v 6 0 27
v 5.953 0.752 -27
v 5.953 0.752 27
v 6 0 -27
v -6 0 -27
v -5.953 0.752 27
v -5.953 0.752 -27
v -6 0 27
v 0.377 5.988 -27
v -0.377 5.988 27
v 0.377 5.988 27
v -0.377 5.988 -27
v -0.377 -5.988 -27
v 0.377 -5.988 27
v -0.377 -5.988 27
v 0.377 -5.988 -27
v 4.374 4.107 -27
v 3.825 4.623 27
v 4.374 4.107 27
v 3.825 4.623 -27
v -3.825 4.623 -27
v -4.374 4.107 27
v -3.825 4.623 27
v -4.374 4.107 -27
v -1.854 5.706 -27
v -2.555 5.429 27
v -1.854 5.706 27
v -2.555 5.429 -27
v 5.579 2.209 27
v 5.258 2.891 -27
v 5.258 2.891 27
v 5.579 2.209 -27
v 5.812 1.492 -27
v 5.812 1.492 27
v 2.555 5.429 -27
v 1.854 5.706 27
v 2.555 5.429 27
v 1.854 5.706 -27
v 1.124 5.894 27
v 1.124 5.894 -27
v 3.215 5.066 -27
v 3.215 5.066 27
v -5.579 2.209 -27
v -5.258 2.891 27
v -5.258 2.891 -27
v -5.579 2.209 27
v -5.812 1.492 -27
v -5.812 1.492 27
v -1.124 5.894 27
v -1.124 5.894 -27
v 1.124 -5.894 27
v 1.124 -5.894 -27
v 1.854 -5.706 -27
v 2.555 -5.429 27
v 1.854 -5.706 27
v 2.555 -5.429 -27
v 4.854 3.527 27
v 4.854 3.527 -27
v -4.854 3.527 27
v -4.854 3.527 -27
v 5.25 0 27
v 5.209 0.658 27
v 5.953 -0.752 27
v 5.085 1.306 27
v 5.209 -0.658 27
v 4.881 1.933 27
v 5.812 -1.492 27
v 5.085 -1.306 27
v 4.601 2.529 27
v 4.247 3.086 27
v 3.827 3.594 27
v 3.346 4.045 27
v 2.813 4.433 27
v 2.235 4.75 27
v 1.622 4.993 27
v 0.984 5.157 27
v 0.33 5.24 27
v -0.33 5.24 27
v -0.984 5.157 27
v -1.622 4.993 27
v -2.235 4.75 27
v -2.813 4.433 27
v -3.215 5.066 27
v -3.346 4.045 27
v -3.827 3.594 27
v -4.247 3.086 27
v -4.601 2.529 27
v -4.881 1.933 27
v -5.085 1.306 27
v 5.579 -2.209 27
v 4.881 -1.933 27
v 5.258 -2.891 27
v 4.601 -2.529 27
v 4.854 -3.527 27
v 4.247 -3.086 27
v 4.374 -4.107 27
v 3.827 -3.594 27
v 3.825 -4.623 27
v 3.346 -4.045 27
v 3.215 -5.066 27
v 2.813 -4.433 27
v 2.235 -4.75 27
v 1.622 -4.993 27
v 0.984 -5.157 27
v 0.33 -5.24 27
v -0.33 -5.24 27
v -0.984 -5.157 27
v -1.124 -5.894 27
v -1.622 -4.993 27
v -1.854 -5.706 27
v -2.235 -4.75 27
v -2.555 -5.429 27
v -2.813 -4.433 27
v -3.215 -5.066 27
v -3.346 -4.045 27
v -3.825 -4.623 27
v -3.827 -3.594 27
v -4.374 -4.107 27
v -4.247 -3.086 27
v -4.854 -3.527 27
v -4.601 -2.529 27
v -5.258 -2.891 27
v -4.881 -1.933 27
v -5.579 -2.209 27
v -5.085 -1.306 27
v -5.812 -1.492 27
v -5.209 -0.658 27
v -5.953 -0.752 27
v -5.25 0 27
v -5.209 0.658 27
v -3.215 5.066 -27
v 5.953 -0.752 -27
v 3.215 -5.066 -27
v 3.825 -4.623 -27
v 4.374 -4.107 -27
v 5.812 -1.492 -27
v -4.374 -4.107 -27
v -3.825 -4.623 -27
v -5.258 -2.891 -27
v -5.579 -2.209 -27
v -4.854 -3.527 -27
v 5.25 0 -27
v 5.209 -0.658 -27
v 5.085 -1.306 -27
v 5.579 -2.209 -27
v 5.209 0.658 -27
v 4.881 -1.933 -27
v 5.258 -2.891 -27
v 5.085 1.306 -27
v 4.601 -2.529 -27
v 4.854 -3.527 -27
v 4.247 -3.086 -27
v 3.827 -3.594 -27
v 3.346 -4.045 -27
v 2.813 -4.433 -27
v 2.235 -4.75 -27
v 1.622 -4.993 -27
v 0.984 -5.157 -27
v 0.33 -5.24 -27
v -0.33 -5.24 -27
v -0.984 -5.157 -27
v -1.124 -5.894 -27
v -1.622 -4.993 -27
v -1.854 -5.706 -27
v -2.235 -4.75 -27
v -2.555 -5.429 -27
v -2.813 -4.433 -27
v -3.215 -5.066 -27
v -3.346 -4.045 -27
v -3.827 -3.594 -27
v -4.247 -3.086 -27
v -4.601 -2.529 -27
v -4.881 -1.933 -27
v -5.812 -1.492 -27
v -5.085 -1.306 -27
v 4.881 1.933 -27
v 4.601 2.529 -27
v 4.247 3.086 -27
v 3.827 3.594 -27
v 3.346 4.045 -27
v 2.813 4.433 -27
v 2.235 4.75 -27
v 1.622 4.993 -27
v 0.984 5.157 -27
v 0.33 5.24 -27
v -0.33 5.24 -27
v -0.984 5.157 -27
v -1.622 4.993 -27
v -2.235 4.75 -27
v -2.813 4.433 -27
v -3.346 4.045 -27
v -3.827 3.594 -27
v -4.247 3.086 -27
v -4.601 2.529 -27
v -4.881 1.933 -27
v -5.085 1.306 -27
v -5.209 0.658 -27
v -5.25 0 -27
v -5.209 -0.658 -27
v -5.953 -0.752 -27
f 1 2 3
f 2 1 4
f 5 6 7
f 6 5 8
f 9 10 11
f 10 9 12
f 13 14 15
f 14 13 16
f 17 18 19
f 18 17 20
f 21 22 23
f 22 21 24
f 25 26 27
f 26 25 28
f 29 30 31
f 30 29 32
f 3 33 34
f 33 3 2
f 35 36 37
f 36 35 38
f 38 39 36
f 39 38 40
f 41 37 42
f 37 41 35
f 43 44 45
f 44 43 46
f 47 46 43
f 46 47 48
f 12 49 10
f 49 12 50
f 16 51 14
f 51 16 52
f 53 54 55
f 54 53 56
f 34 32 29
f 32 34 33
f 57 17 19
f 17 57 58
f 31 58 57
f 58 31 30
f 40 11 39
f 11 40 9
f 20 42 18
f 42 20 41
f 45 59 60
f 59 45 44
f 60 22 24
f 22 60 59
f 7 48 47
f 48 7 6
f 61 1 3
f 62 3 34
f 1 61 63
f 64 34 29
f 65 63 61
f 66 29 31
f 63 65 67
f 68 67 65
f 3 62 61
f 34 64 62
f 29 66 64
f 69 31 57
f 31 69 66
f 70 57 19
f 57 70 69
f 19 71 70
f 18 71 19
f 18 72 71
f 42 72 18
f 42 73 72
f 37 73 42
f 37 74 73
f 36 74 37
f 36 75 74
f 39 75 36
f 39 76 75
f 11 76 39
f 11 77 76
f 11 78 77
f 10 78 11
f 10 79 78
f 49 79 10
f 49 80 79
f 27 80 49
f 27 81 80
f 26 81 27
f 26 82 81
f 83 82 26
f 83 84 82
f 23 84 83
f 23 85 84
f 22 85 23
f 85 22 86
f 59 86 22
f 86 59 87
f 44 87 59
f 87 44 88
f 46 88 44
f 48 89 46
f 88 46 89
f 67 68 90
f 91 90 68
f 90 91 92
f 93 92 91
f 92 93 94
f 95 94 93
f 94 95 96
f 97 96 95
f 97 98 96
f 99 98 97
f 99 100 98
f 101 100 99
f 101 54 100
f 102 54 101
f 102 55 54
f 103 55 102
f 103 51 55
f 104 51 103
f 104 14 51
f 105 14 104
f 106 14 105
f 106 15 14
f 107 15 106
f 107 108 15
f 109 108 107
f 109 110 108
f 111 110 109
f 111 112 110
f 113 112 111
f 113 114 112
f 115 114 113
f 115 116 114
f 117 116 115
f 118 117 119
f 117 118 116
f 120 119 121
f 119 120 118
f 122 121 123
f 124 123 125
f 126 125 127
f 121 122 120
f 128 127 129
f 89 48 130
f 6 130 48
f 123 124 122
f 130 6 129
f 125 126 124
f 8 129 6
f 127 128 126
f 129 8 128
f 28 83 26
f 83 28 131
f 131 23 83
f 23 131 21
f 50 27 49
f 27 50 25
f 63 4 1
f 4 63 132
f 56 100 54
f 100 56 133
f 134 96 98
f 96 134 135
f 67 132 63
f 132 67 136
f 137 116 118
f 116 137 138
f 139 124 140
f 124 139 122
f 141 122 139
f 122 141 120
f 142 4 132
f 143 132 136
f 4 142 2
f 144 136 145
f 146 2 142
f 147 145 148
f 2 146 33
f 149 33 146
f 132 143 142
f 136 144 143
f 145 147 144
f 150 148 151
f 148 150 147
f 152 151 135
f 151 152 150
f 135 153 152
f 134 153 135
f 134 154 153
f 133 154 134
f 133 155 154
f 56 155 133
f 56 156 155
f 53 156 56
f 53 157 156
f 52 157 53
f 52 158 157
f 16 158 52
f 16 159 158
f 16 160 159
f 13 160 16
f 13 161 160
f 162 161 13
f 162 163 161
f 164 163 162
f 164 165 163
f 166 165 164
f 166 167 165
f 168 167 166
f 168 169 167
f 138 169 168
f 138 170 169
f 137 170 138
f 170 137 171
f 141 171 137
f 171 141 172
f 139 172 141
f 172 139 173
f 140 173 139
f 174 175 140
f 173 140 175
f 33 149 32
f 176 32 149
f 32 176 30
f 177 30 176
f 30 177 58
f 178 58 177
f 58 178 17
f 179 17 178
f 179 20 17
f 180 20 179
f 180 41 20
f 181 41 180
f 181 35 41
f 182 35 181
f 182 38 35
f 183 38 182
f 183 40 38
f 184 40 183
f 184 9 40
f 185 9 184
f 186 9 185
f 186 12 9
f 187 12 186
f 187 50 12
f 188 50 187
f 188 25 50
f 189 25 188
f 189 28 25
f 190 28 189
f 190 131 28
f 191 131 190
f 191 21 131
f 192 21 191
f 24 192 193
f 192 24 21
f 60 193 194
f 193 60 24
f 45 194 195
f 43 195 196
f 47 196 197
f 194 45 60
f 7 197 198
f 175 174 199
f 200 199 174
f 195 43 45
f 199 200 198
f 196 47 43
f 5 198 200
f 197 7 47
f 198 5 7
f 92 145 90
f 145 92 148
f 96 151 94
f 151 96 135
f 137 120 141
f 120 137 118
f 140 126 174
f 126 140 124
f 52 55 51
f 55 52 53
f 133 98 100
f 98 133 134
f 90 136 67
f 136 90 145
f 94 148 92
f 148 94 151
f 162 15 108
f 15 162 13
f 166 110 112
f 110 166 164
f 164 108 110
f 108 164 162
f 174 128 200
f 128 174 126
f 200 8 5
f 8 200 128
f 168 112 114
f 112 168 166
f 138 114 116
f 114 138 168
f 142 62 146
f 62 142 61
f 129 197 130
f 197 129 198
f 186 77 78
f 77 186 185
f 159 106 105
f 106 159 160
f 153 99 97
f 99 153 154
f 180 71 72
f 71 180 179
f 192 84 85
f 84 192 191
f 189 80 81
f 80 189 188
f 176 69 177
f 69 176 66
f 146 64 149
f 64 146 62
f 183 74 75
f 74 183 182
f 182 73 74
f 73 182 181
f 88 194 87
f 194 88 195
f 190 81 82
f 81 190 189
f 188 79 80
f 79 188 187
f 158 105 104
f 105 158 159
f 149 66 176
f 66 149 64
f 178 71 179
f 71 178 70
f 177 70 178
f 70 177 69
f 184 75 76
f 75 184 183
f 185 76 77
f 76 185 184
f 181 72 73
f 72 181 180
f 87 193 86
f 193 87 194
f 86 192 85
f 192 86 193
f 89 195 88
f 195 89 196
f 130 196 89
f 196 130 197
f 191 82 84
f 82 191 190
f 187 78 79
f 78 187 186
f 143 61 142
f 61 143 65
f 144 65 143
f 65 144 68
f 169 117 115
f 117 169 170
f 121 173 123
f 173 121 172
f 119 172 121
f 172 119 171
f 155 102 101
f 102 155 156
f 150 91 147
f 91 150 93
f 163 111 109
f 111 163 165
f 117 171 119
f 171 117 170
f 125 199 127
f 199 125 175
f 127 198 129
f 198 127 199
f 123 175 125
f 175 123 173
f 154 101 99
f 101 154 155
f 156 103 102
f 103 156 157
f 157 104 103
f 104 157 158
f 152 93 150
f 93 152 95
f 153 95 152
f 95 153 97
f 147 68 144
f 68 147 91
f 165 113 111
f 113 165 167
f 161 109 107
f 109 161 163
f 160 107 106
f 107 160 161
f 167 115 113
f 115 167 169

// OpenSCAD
$fn = 50;


difference() {
	union() {
		translate(v = [0, 0, -27.0000000000]) {
			cylinder(h = 54, r = 6.0000000000);
		}
	}
	union() {
		translate(v = [0, 0, -100.0000000000]) {
			cylinder(h = 200, r = 5.2500000000);
		}
	}
}
